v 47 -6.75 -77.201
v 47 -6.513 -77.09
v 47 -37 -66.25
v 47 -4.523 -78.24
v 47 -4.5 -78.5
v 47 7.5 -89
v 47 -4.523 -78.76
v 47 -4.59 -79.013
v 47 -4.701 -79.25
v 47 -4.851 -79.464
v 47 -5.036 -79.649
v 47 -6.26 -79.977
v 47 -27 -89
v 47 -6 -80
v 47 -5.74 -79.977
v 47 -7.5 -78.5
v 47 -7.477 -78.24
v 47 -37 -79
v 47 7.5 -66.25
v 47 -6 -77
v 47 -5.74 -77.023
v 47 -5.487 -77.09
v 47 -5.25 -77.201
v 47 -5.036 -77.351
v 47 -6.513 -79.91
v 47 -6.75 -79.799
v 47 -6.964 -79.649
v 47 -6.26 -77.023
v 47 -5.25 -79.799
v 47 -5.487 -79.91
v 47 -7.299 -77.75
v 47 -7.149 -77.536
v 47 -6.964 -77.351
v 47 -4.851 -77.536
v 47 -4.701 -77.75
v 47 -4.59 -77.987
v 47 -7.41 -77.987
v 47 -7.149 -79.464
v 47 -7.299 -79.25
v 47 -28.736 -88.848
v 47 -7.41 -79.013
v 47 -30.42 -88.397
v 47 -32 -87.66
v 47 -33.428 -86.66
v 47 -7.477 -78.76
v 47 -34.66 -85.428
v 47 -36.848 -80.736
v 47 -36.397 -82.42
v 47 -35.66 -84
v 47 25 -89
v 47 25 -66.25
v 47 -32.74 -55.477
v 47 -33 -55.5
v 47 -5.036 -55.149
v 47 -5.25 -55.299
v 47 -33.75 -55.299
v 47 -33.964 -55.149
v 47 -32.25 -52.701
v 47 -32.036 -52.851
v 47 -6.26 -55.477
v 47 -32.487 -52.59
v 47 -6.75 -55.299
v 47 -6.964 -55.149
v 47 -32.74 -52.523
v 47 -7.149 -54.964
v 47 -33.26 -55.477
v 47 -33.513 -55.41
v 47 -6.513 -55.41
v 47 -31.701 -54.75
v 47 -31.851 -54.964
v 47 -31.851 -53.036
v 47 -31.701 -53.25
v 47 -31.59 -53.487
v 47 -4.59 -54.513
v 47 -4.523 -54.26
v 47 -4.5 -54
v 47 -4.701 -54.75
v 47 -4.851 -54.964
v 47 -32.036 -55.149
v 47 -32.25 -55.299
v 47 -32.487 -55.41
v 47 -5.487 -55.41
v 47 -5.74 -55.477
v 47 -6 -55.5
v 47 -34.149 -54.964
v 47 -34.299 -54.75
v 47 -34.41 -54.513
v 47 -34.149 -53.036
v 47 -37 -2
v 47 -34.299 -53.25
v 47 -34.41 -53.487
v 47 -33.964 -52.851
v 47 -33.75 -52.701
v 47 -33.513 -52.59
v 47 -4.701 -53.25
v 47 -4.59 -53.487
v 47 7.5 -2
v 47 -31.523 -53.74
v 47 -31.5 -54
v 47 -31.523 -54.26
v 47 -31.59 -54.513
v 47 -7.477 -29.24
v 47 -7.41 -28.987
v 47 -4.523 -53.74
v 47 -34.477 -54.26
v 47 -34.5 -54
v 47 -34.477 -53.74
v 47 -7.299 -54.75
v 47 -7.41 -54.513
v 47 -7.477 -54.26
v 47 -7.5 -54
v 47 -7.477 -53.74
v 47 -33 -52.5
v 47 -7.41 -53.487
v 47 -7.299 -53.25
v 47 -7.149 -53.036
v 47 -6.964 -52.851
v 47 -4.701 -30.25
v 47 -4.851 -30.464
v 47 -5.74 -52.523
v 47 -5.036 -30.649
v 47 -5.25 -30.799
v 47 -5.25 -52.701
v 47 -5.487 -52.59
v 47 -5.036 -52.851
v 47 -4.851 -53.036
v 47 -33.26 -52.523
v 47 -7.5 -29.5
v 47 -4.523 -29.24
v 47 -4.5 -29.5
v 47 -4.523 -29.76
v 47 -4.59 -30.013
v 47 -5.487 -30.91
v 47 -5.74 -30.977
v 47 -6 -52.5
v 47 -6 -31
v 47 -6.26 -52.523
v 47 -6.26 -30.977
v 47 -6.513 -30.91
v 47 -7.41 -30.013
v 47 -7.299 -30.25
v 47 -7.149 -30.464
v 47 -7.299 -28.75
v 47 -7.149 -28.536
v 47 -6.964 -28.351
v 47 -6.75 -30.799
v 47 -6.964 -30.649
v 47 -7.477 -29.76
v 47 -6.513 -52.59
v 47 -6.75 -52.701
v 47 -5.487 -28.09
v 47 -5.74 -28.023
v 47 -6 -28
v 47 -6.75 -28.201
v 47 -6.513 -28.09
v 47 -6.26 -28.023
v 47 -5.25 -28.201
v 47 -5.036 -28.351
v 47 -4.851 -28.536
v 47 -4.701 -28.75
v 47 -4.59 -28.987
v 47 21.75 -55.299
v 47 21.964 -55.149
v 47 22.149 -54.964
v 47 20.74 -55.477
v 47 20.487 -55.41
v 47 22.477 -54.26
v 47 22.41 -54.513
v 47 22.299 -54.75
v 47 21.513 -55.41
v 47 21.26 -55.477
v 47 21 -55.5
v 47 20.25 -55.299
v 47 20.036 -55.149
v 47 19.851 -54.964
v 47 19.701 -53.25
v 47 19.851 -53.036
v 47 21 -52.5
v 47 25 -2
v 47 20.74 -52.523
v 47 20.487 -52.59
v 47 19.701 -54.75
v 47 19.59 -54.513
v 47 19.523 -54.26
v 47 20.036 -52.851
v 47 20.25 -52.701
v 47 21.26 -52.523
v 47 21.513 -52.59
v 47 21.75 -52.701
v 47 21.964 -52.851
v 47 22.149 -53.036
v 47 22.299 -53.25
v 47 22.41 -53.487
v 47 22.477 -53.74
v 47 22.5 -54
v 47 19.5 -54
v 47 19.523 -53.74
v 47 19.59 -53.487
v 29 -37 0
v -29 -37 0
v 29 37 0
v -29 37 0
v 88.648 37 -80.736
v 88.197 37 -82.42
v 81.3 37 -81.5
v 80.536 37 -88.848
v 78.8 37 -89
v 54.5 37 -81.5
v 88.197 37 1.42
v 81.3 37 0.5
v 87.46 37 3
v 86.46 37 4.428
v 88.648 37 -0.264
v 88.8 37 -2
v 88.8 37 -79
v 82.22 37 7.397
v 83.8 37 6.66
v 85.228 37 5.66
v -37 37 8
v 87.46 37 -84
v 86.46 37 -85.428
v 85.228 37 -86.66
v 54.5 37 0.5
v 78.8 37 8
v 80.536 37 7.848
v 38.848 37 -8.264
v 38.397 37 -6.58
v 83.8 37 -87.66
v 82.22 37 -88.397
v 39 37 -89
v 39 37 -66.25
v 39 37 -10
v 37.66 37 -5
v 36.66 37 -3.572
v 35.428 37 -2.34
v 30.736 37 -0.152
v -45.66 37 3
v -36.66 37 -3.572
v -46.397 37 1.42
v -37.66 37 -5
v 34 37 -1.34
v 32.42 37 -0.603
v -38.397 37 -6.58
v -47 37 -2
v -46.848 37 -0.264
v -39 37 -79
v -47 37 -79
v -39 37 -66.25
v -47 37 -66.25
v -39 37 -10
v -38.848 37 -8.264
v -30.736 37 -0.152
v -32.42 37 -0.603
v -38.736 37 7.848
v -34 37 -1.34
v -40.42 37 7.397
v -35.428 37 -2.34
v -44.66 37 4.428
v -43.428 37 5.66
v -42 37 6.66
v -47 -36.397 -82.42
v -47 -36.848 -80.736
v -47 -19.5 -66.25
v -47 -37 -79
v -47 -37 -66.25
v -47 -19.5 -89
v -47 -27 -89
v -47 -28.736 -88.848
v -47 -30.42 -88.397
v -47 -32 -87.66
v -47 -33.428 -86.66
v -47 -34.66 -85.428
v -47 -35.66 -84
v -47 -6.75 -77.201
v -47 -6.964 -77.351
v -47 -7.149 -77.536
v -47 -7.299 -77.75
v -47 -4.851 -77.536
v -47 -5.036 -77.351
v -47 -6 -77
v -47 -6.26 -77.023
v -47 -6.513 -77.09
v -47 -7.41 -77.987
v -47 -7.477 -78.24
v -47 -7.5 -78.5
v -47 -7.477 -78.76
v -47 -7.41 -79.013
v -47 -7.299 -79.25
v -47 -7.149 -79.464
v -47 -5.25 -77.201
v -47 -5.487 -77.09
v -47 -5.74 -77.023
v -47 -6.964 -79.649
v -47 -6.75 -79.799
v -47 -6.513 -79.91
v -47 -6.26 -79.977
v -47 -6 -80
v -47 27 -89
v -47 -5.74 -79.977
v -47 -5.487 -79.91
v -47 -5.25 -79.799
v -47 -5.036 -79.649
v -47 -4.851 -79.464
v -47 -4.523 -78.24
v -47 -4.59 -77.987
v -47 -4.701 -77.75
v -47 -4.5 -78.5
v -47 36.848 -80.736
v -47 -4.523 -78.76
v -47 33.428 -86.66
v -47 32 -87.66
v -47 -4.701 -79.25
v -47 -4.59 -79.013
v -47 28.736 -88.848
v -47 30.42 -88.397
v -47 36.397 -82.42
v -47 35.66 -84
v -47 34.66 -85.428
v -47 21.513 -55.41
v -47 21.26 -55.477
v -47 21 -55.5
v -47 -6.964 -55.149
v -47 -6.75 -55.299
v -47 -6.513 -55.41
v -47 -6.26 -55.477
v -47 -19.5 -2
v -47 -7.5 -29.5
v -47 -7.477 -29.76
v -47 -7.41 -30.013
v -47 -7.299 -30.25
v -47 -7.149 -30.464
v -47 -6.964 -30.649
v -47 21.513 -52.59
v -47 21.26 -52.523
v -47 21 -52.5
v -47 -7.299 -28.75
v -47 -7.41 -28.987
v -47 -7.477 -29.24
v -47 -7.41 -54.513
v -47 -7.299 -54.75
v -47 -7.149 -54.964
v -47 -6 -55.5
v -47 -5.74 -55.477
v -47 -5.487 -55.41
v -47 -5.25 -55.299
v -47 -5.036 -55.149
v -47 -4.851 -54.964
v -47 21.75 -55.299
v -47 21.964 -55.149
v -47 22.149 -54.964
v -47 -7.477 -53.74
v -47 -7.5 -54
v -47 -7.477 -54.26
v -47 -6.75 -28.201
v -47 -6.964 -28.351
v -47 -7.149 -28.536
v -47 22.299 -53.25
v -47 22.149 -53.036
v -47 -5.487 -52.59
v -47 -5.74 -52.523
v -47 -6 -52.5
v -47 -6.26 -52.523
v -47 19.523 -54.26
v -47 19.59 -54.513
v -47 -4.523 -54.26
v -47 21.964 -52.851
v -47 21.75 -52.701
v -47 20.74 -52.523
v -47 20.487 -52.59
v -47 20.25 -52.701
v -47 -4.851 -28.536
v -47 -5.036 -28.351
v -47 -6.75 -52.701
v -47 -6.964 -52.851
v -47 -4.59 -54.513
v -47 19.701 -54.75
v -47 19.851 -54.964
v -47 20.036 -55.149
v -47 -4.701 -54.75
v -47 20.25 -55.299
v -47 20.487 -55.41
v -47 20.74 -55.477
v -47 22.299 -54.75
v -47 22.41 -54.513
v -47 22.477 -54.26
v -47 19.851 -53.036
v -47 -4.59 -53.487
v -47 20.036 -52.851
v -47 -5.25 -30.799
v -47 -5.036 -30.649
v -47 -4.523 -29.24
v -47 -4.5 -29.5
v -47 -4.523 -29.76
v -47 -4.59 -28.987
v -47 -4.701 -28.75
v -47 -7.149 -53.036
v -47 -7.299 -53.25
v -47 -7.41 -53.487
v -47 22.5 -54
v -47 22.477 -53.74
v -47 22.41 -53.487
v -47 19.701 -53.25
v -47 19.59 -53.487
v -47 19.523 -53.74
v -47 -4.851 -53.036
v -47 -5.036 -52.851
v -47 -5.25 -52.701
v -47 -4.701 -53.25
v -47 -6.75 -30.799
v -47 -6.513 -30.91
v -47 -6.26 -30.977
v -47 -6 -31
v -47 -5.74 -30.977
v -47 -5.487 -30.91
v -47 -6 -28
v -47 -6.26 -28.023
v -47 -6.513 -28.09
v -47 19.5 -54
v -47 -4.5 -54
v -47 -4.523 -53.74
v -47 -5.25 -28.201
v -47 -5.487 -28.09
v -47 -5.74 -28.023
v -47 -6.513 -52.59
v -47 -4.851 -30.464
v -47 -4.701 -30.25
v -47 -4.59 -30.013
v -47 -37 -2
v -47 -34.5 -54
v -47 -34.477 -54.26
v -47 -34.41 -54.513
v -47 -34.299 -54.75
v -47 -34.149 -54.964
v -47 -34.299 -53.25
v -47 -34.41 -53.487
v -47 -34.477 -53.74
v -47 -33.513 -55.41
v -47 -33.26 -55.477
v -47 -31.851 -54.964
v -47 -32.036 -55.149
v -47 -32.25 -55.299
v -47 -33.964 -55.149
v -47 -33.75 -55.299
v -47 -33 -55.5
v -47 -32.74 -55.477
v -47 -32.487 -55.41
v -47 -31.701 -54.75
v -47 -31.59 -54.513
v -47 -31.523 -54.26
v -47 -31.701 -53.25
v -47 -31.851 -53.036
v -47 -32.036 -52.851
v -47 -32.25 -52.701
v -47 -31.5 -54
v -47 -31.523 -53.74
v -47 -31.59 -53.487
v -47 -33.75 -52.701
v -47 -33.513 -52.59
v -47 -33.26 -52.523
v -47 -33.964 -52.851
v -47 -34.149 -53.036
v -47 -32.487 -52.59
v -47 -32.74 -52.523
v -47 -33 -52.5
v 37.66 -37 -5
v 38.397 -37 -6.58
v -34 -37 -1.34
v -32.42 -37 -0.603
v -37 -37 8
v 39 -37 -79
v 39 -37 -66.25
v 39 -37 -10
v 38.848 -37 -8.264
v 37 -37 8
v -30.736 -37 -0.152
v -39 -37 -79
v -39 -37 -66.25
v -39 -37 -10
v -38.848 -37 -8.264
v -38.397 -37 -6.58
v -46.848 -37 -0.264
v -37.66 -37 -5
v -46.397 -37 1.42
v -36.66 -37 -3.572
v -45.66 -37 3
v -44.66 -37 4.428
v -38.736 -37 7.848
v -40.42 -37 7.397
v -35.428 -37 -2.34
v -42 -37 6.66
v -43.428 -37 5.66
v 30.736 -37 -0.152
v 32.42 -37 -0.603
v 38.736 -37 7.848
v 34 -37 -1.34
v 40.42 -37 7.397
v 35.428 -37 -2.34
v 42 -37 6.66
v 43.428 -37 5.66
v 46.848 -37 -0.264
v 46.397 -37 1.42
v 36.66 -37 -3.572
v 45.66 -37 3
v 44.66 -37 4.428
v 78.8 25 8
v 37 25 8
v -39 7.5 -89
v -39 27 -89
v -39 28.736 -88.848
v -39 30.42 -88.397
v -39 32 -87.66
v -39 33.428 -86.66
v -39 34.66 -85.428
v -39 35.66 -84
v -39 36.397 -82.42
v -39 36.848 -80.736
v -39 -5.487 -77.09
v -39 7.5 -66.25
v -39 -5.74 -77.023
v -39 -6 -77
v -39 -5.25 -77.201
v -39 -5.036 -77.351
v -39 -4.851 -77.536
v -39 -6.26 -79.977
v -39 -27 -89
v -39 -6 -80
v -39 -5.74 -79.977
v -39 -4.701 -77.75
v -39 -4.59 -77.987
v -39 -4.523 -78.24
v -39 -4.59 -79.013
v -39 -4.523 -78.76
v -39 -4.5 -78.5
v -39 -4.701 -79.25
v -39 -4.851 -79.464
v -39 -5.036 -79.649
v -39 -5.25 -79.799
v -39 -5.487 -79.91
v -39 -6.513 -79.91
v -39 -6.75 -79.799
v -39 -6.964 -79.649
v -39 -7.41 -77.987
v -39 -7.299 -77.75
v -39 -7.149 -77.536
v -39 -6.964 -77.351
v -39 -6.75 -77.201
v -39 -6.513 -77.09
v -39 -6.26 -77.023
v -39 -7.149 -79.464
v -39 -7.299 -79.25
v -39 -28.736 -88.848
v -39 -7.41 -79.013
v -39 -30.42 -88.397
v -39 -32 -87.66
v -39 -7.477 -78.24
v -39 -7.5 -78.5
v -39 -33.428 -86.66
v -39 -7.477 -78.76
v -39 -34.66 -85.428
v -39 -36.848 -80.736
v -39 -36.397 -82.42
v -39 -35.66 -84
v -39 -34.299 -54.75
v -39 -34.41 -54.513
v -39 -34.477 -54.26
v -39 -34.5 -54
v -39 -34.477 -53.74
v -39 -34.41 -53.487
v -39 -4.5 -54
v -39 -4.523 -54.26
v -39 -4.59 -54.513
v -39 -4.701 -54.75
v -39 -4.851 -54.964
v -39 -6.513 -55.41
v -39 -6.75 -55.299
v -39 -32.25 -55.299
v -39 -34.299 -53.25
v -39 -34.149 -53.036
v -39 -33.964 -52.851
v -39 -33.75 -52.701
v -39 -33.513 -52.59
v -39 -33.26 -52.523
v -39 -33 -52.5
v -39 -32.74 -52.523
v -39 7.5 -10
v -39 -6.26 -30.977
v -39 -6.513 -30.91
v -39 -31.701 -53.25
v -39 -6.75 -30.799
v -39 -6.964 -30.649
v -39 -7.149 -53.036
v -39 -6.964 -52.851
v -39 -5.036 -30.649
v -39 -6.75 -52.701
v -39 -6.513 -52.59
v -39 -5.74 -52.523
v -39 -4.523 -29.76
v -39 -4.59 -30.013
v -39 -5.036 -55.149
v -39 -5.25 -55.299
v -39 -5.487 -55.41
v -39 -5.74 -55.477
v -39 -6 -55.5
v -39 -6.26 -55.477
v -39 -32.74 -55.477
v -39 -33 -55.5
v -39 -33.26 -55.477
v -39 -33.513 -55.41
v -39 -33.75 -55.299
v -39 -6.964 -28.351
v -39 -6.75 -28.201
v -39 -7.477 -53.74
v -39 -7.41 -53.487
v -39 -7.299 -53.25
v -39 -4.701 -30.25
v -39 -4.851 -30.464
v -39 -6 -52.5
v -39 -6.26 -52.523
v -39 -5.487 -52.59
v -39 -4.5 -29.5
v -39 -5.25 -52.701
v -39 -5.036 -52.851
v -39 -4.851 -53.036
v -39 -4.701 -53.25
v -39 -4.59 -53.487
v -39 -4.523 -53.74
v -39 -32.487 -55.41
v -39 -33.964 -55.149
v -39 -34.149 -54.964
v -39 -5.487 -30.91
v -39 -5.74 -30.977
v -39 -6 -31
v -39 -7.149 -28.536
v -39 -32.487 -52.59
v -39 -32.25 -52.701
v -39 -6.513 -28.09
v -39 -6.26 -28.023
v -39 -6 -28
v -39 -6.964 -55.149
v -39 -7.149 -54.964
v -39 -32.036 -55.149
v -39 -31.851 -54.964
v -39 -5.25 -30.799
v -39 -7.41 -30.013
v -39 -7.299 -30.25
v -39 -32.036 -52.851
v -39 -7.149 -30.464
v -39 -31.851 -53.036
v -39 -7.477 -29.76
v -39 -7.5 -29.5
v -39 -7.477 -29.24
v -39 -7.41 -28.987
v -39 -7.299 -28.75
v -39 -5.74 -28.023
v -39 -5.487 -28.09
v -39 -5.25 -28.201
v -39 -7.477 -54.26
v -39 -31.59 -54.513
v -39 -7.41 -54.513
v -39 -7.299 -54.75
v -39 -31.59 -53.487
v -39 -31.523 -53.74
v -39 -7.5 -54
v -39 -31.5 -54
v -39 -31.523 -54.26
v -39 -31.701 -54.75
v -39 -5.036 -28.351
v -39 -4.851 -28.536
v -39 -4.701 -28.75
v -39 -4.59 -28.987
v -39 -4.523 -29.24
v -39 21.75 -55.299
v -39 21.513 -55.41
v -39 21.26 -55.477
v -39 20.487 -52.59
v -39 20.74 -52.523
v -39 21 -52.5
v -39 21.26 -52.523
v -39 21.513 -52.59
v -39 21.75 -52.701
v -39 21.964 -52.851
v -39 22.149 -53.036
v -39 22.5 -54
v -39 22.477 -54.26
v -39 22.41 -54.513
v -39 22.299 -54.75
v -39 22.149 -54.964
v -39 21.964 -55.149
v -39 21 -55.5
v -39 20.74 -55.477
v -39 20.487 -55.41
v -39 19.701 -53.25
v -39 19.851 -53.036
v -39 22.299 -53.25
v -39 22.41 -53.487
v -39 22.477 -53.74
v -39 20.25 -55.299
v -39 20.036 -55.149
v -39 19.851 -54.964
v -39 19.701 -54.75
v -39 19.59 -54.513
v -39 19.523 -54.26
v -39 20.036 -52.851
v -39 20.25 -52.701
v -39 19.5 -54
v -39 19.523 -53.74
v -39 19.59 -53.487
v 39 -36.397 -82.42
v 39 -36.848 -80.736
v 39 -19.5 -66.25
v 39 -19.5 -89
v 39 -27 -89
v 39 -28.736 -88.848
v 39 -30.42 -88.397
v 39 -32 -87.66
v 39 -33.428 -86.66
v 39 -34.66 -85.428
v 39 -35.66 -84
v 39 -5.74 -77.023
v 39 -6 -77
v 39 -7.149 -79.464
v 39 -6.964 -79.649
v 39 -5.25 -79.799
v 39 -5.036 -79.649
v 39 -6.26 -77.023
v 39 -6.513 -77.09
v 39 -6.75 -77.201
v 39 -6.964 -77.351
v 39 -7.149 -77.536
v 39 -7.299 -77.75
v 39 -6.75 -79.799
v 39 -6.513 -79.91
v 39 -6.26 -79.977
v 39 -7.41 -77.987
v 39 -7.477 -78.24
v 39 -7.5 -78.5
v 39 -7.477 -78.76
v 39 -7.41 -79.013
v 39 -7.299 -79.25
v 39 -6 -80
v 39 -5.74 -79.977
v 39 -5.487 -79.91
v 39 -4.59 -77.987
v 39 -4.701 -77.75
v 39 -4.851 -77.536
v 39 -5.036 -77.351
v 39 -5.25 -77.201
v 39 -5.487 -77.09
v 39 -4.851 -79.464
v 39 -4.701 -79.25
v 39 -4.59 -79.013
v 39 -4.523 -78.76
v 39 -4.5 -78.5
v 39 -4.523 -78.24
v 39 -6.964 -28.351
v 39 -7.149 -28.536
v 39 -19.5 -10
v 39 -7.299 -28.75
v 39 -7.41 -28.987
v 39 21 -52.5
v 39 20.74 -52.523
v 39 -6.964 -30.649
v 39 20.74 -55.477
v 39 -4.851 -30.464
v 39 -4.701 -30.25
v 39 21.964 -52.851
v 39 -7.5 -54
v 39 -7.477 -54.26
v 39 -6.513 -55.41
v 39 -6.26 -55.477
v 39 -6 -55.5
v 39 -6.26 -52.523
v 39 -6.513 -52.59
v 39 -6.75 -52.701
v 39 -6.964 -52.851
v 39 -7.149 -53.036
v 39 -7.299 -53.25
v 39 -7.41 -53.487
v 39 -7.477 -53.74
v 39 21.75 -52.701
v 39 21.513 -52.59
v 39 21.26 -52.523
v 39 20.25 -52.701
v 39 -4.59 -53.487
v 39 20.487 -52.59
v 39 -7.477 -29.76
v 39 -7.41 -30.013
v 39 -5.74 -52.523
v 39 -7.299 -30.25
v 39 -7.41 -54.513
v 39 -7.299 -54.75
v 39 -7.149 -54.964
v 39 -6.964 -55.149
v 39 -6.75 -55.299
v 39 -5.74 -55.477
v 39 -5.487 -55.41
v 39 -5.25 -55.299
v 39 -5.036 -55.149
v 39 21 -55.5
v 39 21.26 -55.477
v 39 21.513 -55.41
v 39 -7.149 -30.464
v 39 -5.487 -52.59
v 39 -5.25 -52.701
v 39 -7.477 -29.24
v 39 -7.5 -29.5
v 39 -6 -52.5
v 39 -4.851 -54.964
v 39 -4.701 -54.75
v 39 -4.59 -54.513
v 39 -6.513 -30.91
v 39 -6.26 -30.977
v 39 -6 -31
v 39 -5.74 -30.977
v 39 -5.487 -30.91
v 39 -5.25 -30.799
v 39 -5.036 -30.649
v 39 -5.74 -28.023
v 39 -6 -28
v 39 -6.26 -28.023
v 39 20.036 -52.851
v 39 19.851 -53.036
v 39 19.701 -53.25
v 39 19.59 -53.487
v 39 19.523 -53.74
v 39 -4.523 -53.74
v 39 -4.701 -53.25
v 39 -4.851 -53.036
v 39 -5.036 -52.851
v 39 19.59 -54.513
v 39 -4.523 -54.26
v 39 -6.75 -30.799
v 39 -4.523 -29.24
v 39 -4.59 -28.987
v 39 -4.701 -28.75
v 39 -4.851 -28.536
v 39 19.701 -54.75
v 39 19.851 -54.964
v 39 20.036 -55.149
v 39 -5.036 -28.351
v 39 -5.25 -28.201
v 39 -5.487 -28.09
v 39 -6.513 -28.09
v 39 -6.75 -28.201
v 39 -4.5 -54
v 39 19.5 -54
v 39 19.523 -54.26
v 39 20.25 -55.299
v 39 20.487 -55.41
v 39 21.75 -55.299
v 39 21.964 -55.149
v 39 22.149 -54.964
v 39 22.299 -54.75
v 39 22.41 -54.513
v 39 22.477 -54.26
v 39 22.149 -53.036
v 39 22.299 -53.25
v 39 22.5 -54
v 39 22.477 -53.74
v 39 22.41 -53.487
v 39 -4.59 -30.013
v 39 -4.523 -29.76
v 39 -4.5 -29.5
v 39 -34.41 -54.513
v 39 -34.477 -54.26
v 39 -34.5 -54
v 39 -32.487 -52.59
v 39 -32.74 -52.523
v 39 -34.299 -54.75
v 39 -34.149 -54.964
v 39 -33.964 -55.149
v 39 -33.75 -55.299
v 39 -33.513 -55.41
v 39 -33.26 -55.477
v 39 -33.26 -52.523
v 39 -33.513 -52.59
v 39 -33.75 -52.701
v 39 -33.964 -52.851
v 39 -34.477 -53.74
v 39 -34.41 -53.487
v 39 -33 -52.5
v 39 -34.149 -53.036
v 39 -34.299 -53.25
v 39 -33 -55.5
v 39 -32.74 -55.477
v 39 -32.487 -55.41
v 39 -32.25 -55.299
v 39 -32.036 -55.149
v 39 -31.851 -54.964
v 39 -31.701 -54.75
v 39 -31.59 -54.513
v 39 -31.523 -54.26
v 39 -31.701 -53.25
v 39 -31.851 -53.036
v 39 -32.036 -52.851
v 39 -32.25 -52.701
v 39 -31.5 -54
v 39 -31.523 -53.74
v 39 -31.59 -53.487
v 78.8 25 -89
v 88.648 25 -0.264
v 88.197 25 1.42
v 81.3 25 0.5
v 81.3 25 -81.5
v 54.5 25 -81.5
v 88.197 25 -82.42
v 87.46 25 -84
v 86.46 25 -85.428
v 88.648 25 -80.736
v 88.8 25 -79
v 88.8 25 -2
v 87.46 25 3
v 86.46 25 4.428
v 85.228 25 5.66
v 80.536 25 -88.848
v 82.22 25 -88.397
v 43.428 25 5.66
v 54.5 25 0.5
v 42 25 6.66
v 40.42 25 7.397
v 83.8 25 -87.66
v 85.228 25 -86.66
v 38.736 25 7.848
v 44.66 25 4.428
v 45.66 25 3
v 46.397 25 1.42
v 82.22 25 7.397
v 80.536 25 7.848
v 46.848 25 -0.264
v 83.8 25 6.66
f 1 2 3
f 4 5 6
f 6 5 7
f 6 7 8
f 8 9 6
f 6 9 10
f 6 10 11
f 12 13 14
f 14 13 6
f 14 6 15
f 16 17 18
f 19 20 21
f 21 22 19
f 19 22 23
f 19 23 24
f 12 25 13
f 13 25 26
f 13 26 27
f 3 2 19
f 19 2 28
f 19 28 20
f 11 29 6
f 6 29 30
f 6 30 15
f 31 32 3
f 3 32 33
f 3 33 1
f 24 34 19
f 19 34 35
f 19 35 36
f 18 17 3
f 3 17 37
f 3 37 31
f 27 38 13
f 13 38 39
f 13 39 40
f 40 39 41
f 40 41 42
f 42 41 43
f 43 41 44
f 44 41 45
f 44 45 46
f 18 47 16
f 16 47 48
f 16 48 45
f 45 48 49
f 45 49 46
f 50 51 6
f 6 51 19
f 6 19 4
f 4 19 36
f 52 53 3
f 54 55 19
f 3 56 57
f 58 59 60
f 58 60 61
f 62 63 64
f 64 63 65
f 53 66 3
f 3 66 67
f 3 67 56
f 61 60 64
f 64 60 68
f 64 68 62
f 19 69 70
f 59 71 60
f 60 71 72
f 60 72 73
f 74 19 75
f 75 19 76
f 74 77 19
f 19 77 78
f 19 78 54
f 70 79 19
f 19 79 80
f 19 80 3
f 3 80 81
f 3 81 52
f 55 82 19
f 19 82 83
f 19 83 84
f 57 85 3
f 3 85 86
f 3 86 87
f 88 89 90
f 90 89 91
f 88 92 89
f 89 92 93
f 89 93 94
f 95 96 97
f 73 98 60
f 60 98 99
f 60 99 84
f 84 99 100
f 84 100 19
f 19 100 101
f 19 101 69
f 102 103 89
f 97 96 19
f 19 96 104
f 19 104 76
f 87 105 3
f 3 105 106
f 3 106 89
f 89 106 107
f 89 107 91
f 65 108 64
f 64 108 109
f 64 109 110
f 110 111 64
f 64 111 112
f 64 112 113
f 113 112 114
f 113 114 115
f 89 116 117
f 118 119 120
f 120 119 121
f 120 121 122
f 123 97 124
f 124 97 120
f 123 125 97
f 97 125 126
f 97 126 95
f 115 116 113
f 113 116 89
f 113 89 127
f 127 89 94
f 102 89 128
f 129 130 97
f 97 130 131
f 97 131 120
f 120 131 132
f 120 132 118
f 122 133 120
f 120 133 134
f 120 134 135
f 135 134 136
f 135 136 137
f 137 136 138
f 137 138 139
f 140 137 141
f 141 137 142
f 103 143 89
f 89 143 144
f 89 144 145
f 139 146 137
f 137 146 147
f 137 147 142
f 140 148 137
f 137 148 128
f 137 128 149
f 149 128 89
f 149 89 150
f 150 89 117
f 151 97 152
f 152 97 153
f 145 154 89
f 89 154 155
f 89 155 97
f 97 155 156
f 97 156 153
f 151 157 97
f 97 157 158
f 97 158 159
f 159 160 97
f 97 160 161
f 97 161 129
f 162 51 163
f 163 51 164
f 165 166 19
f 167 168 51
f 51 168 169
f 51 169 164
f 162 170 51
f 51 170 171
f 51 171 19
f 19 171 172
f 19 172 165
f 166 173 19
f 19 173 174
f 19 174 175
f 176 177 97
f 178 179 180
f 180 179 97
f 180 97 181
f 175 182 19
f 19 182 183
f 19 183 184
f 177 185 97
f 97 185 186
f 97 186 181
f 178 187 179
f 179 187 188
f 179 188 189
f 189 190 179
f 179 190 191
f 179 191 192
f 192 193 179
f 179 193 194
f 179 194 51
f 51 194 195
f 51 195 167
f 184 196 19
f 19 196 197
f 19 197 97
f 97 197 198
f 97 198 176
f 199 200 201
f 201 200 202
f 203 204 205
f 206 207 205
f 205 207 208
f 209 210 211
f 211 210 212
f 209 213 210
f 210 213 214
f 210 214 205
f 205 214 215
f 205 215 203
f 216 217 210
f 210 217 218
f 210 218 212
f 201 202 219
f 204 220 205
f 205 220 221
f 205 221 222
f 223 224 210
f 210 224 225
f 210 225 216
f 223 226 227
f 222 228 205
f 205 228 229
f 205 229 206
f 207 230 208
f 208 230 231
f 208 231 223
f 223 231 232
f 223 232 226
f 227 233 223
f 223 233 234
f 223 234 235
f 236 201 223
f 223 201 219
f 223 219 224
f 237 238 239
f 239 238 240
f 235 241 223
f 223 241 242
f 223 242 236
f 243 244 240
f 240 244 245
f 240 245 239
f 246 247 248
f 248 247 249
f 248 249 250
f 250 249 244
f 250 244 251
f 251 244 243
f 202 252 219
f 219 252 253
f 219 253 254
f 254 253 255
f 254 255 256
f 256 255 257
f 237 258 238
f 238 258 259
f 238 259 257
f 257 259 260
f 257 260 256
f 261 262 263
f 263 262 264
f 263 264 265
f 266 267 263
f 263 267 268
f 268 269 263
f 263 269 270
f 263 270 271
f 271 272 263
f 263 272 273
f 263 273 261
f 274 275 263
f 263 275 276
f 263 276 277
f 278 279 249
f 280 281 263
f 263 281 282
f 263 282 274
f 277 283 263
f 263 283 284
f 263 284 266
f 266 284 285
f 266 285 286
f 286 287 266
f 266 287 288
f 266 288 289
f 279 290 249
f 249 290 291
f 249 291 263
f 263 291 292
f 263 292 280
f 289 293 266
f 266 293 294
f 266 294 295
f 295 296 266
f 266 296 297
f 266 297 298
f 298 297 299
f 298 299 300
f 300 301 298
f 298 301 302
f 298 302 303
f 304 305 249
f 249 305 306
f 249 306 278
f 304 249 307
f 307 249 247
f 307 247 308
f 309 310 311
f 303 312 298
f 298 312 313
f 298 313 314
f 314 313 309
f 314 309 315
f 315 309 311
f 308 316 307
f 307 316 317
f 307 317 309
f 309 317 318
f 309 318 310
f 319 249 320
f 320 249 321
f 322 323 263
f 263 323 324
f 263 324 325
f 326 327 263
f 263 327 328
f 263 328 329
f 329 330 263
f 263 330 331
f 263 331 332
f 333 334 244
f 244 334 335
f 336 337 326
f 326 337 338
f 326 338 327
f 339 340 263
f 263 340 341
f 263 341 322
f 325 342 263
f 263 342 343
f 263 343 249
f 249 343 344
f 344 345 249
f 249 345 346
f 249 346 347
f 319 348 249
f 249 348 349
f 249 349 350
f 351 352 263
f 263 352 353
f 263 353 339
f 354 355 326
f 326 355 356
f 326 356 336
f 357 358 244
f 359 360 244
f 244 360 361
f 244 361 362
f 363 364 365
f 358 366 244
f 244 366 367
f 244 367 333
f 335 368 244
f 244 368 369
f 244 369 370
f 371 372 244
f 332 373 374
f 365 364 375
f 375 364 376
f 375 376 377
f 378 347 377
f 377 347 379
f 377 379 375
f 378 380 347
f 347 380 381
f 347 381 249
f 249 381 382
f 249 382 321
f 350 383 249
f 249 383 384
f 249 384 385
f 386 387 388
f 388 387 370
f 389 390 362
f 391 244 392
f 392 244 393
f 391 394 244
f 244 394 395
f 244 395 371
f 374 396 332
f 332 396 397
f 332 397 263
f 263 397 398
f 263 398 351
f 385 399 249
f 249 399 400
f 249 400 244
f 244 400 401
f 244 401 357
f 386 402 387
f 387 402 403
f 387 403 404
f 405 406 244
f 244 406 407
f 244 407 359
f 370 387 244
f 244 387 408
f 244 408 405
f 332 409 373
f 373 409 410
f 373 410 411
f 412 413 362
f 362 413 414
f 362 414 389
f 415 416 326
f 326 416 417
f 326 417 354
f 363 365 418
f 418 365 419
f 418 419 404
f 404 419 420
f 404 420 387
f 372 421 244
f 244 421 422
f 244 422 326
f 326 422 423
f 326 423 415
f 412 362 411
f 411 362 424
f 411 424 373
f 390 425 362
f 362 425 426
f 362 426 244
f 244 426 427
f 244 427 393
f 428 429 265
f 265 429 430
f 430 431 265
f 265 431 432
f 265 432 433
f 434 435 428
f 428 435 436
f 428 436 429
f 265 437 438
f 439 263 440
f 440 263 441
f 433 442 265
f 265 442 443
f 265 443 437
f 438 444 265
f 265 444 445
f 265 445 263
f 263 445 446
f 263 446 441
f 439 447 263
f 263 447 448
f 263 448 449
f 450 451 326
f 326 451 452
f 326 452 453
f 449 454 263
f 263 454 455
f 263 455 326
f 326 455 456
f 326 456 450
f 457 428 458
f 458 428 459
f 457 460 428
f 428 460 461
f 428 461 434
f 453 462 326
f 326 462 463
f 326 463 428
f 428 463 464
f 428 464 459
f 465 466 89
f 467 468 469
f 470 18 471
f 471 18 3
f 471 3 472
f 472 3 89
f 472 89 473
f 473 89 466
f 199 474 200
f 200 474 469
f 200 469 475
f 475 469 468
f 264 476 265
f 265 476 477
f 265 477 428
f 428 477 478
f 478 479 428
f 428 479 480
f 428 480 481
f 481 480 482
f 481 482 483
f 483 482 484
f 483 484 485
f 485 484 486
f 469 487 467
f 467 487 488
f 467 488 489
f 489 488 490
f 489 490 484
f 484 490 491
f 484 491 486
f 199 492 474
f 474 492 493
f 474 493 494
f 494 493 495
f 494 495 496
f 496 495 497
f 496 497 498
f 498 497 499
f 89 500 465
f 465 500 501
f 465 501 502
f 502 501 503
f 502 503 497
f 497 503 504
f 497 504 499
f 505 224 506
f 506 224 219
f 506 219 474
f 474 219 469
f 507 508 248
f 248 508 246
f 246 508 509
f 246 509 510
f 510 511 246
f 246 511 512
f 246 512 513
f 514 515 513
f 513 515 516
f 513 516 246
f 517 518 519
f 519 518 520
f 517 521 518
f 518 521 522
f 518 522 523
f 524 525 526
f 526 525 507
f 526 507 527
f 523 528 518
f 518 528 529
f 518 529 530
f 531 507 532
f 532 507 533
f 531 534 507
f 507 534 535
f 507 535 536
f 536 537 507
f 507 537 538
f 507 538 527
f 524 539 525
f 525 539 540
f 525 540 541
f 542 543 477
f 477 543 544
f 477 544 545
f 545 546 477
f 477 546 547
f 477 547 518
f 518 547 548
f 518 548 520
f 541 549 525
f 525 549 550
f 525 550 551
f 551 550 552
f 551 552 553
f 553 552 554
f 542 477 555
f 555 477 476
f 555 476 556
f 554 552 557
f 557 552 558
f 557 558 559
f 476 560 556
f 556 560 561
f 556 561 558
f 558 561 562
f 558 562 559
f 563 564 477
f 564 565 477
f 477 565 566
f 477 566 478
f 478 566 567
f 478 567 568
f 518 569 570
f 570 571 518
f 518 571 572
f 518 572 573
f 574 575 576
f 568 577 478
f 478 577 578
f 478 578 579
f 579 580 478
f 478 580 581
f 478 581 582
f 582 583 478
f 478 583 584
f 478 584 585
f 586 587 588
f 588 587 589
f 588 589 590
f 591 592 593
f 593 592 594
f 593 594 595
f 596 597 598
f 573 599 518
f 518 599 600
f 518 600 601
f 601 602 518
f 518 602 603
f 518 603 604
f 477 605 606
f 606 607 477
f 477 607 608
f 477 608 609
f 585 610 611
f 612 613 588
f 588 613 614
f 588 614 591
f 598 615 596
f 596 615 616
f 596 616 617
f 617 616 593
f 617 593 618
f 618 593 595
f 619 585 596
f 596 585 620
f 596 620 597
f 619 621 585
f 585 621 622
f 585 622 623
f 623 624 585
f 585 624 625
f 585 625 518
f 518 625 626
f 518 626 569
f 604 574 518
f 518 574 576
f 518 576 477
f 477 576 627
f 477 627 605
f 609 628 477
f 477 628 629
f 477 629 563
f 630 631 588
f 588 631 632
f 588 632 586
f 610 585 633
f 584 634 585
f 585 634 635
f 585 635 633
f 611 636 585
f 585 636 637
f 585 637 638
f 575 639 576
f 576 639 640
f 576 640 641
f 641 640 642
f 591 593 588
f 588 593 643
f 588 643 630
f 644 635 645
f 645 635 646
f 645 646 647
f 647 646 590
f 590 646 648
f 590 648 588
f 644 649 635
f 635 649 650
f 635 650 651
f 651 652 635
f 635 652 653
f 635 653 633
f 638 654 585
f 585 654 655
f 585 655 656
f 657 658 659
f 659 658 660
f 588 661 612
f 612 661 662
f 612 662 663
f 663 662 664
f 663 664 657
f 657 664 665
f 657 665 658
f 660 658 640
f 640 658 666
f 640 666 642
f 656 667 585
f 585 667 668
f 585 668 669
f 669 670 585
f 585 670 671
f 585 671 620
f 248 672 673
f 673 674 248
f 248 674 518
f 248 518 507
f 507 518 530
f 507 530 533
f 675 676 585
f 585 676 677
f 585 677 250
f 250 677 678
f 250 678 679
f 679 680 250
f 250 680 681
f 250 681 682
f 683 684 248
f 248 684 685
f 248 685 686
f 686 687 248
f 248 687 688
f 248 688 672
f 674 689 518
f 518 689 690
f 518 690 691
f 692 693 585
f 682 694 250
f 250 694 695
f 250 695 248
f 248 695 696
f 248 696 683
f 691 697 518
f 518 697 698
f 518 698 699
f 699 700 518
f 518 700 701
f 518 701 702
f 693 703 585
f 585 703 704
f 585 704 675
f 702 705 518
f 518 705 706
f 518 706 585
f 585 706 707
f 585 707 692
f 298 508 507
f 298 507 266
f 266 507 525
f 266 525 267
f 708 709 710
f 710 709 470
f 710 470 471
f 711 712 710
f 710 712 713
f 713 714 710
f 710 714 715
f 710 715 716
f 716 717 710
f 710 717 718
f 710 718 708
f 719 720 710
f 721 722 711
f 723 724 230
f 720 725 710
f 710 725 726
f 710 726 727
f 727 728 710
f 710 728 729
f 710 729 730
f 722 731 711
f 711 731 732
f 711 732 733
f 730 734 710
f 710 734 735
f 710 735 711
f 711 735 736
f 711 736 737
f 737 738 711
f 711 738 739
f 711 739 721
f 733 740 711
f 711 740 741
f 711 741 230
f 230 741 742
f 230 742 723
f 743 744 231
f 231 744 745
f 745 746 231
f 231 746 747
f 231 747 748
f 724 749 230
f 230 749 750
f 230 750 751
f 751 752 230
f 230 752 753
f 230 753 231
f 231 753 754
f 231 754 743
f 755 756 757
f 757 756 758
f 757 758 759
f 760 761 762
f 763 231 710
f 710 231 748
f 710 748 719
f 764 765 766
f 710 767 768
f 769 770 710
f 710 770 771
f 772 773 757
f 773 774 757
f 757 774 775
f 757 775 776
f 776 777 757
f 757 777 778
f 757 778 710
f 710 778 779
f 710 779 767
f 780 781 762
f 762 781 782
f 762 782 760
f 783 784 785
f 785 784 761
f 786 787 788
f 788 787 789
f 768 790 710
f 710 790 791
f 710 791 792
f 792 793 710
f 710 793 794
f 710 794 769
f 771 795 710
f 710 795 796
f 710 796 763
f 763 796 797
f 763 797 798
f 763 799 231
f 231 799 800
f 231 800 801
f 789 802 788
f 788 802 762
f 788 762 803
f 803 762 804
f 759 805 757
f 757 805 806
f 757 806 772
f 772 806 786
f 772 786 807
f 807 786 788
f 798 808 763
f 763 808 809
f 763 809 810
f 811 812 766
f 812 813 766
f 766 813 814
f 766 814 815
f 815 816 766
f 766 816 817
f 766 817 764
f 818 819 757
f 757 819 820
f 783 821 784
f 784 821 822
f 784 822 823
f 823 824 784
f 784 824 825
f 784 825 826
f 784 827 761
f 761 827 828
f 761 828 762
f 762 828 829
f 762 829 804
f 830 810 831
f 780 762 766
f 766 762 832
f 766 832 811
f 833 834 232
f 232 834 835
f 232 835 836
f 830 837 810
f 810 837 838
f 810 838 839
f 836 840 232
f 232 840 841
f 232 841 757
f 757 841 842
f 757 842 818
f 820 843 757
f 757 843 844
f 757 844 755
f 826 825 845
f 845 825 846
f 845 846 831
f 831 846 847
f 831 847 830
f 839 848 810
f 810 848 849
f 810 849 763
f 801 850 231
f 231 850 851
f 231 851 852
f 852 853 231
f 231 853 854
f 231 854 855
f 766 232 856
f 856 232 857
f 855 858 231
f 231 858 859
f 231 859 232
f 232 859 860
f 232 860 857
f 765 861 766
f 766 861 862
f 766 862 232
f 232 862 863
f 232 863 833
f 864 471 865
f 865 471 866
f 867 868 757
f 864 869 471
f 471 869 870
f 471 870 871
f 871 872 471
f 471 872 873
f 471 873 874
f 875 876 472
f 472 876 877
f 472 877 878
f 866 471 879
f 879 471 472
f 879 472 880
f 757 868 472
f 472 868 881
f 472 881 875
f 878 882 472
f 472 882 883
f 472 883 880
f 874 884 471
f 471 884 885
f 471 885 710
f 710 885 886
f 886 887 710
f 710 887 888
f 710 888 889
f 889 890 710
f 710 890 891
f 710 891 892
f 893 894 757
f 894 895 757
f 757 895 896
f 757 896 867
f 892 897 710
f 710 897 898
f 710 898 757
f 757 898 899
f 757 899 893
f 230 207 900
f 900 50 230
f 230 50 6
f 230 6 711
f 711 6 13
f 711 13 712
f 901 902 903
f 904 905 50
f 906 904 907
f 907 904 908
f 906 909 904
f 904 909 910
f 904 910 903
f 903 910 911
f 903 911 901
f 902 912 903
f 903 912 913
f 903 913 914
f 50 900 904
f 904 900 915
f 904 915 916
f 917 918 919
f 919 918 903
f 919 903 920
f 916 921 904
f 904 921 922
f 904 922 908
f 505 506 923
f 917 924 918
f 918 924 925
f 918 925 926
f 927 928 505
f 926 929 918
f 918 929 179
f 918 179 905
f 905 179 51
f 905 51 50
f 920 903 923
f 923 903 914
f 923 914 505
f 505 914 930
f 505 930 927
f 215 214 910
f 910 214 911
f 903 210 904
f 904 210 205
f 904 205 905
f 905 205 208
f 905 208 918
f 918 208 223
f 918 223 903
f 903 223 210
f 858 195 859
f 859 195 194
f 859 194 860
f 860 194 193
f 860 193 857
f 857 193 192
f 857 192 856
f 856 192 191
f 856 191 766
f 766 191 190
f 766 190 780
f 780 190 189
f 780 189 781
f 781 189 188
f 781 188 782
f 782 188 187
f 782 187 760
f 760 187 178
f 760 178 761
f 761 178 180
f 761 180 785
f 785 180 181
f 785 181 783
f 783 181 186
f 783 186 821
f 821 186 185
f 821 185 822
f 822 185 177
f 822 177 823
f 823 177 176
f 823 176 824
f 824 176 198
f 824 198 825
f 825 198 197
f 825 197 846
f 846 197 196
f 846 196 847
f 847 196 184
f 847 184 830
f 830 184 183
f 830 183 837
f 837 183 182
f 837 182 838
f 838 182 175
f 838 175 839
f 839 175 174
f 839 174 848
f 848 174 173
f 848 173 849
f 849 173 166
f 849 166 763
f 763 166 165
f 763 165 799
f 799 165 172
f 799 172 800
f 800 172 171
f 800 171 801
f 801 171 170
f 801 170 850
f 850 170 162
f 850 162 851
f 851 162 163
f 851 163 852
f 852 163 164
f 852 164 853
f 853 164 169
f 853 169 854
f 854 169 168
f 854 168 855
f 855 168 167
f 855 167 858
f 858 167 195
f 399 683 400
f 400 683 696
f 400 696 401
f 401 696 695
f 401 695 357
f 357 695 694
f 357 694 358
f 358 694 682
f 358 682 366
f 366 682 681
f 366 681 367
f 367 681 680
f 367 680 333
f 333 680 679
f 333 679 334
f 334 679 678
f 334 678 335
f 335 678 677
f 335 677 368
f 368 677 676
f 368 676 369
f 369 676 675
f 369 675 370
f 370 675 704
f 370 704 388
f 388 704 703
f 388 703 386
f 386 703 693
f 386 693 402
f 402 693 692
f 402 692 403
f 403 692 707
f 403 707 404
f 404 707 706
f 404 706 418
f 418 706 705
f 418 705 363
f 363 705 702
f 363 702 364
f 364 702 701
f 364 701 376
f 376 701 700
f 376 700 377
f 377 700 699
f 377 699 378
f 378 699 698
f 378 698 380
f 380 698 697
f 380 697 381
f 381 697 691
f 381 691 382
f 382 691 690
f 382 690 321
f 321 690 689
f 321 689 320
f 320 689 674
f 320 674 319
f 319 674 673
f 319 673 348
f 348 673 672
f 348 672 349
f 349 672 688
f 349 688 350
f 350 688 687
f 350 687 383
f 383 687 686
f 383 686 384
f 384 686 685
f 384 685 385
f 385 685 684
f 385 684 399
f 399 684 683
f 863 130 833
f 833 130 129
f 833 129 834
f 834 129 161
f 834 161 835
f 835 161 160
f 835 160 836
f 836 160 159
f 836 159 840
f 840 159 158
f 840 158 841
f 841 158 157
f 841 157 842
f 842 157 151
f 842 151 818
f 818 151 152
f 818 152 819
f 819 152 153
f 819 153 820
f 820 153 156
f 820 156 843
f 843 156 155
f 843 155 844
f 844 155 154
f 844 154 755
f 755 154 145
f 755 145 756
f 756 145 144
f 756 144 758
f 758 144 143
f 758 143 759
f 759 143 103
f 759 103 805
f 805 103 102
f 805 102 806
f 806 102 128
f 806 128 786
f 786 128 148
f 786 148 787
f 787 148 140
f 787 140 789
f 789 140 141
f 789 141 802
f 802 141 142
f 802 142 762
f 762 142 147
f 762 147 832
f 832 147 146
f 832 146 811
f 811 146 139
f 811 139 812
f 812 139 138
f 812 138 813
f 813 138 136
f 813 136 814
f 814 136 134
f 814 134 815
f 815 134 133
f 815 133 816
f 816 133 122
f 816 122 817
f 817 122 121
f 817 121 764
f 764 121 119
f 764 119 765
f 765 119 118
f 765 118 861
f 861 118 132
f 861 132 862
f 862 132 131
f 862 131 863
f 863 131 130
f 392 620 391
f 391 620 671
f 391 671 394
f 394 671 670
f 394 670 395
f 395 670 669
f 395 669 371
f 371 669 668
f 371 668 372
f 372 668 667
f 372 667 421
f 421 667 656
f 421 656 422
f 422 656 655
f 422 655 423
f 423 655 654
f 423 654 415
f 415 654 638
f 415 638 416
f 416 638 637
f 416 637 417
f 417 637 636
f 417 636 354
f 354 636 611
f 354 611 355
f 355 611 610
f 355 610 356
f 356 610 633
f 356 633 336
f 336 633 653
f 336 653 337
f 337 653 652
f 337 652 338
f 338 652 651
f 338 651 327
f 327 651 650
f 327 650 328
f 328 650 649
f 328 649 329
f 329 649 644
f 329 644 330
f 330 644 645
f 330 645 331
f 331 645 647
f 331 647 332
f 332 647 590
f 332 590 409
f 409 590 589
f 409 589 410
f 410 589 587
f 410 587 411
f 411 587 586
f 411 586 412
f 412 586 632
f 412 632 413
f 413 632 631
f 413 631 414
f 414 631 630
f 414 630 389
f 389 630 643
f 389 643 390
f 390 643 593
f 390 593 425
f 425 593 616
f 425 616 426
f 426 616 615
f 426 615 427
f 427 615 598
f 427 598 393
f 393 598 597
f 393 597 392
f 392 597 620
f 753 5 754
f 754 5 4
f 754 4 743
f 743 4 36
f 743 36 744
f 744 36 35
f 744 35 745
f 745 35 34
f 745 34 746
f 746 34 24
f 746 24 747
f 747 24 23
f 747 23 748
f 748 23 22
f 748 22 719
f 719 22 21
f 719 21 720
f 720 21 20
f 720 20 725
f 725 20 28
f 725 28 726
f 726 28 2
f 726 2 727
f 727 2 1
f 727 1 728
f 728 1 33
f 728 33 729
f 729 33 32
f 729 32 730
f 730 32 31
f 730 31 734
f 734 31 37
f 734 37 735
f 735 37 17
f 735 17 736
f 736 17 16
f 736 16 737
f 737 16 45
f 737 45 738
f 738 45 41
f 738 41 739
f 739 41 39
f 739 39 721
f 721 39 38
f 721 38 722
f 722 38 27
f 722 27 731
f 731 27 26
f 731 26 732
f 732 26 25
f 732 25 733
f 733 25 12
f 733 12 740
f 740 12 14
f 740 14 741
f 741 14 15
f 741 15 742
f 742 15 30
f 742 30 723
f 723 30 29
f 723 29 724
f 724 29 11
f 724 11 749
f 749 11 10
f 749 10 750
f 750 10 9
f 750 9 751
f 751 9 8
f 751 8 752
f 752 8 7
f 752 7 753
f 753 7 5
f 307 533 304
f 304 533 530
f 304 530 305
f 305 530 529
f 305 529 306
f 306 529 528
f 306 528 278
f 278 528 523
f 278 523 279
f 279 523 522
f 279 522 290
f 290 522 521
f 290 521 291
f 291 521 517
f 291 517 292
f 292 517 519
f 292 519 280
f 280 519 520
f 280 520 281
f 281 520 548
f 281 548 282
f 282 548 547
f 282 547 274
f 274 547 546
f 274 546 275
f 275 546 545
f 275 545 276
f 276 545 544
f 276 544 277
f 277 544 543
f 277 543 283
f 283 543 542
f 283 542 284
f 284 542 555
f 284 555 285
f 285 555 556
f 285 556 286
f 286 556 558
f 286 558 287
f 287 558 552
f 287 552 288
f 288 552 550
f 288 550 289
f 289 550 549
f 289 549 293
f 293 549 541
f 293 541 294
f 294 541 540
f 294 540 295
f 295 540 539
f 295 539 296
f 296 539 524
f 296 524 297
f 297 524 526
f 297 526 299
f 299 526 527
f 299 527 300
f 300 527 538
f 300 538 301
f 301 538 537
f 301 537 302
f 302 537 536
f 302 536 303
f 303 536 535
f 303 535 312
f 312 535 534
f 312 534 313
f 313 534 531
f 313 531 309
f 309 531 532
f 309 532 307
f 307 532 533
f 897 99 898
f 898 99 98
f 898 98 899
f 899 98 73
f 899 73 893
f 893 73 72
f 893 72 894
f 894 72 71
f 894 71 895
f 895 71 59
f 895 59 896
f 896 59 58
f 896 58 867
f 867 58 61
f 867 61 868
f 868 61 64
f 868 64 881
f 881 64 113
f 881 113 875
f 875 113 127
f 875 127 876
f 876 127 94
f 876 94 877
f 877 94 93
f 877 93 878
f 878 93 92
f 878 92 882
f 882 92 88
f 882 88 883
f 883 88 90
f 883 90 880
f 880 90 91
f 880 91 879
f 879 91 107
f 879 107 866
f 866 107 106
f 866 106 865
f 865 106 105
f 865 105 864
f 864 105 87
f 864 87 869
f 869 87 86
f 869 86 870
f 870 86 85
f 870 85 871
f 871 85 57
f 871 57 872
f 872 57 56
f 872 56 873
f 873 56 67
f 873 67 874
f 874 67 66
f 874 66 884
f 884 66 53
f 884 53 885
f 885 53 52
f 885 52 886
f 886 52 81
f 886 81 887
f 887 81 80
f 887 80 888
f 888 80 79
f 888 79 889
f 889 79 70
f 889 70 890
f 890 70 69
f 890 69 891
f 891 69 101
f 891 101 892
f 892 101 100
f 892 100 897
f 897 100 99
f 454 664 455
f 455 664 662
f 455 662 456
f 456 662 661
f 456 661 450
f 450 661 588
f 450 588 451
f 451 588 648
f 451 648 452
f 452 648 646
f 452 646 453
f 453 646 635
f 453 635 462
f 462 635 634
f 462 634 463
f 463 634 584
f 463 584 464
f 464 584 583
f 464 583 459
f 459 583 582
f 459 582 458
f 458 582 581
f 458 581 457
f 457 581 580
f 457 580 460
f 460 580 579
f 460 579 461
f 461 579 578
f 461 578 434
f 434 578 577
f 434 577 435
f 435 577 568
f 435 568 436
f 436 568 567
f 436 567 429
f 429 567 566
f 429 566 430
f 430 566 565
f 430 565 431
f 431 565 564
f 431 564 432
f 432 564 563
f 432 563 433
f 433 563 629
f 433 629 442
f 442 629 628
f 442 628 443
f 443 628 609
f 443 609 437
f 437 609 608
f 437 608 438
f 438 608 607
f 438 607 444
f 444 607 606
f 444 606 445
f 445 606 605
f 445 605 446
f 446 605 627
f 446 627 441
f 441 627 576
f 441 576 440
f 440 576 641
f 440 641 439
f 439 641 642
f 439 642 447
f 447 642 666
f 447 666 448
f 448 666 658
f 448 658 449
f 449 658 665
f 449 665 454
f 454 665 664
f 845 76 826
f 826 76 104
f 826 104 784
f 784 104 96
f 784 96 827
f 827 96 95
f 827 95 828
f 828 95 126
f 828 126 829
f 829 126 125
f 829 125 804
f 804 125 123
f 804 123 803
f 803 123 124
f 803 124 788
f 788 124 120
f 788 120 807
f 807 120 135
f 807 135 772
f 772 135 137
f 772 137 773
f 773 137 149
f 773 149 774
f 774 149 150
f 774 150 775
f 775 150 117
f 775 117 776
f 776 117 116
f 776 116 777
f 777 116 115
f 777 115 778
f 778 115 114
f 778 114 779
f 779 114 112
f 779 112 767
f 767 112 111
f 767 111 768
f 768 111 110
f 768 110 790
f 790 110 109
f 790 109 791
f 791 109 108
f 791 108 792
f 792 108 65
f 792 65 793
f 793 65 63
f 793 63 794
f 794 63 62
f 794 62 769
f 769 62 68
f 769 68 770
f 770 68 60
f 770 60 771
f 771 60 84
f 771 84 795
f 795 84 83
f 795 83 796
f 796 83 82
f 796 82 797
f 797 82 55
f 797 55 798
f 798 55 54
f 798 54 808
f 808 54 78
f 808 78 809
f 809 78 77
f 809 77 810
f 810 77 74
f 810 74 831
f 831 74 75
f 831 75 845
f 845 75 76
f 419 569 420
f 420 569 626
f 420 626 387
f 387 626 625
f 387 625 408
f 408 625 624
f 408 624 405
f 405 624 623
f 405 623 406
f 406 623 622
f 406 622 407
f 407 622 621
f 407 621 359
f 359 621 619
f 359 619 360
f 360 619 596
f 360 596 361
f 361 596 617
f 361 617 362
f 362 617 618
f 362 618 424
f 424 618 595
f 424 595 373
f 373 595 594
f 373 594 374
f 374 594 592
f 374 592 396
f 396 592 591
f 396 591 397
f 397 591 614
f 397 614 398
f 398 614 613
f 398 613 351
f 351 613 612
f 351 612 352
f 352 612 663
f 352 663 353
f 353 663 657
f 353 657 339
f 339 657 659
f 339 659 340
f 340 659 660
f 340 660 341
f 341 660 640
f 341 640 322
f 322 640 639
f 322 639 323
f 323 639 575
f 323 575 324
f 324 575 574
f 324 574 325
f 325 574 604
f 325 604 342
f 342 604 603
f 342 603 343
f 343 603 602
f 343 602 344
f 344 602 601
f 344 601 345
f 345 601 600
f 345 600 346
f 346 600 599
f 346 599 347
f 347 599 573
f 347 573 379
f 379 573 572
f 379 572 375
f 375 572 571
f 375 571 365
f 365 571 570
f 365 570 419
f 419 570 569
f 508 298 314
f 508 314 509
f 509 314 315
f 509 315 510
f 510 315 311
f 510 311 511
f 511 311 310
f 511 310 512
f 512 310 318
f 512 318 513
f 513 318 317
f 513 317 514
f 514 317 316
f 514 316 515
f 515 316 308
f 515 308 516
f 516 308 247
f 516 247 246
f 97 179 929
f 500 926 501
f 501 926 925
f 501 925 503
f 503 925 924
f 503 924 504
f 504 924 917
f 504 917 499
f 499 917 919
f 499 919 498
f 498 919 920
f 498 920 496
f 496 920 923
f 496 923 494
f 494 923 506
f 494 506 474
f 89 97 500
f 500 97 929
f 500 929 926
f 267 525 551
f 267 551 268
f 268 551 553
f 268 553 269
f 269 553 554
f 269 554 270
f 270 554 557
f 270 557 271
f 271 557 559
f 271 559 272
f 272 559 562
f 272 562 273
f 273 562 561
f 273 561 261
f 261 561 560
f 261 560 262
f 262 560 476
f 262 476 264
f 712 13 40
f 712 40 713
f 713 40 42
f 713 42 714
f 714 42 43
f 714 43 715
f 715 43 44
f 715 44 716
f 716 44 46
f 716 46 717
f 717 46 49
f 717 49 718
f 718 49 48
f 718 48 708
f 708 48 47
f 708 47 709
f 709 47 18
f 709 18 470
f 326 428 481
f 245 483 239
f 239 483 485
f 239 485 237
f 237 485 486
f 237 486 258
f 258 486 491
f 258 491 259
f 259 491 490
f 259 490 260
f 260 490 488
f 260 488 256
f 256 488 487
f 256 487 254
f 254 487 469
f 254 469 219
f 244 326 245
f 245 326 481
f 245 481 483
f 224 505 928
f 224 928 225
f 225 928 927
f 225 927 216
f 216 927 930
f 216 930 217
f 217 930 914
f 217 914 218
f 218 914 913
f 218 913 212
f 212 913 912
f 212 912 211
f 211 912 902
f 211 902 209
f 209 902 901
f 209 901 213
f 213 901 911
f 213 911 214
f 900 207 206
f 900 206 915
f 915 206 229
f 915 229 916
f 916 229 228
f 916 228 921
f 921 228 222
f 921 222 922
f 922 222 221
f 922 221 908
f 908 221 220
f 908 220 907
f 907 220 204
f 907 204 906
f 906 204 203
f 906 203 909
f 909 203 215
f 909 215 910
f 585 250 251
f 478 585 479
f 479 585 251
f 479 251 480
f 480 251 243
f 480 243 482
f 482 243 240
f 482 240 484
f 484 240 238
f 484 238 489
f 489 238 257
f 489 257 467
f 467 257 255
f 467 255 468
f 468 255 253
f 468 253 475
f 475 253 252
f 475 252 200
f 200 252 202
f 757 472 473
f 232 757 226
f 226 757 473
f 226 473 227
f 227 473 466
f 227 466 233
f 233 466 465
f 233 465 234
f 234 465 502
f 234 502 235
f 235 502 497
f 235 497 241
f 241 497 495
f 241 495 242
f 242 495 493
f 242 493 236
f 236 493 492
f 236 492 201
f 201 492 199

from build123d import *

# Parameters (mm, degrees)
SKETCH1_W           = 94
SKETCH1_H           = 74
BOSS_EXTRUDE1_DEPTH = 8
SKETCH3_W           = 8
SKETCH3_H           = 74
BOSS_EXTRUDE2_DEPTH = 89
SKETCH4_W           = 8
SKETCH4_H           = 74
BOSS_EXTRUDE3_DEPTH = 89
SKETCH7_W           = 97
SKETCH7_H           = 12
BOSS_EXTRUDE6_DEPTH = 41.8
SKETCH13_W          = 26.8
SKETCH13_H          = 82
CUT_EXTRUDE3_DEPTH  = 15
SKETCH19_R          = 1.5
CUT_EXTRUDE4_DEPTH  = 100
FILLET1_R           = 10
FILLET2_R           = 10
FILLET3_R           = 10
FILLET4_R           = 10
FILLET5_R           = 10
FILLET6_R           = 10
FILLET7_R           = 10
FILLET8_R           = 10


with BuildPart() as part:
    # Sketch1 → Boss-Extrude1 (new body)
    with BuildSketch(Plane.XY):
        Rectangle(SKETCH1_W, SKETCH1_H)
    extrude(amount=BOSS_EXTRUDE1_DEPTH)

    # Sketch3 → Boss-Extrude2 (add)
    with BuildSketch(Plane(origin=(0, 0, 0), x_dir=(-1, 0, 0), z_dir=(0, 0, -1))):
        with Locations((43, 0)):
            Rectangle(SKETCH3_W, SKETCH3_H)
    extrude(amount=BOSS_EXTRUDE2_DEPTH)

    # Sketch4 → Boss-Extrude3 (add)
    with BuildSketch(Plane(origin=(0, 0, 0), x_dir=(-1, 0, 0), z_dir=(0, 0, -1))):
        with Locations((-43, 0)):
            Rectangle(SKETCH4_W, SKETCH4_H)
    extrude(amount=BOSS_EXTRUDE3_DEPTH)

    # Sketch7 → Boss-Extrude6 (add)
    with BuildSketch(Plane(origin=(47, 0, 0), x_dir=(0, 0, -1), z_dir=(1, 0, 0))):
        with Locations((40.5, 31)):
            Rectangle(SKETCH7_W, SKETCH7_H)
    extrude(amount=BOSS_EXTRUDE6_DEPTH)

    # Sketch13 → Cut-Extrude3 (cut)
    with BuildSketch(Plane.XZ.offset(-25)):
        with Locations((67.9, -40.5)):
            Rectangle(SKETCH13_W, SKETCH13_H)
    extrude(amount=-CUT_EXTRUDE3_DEPTH, mode=Mode.SUBTRACT)

    # Sketch19 → Cut-Extrude4 (cut)
    with BuildSketch(Plane(origin=(47, 0, 0), x_dir=(0, 0, -1), z_dir=(1, 0, 0))):
        with Locations(Location((54, 21, 0), (0, 0, 90))):
            Circle(SKETCH19_R)
        with Locations(Location((29.5, -6, 0), (0, 0, 90))):
            Circle(SKETCH19_R)
        with Locations(Location((78.5, -6, 0), (0, 0, 90))):
            Circle(SKETCH19_R)
        with Locations(Location((54, -33, 0), (0, 0, 90))):
            Circle(SKETCH19_R)
        with Locations(Location((54, -6, 0), (0, 0, 90))):
            Circle(SKETCH19_R)
    extrude(amount=-CUT_EXTRUDE4_DEPTH, mode=Mode.SUBTRACT)

    # Fillet1
    fillet1_edges = [part.edges().sort_by_distance(p)[0] for p in [
        (-43, 37, -89),
        (47, -6, 8),
    ]]
    fillet(fillet1_edges, radius=FILLET1_R)

    # Fillet2
    fillet2_edges = [part.edges().sort_by_distance(p)[0] for p in [
        (-43, -37, -89),
    ]]
    fillet(fillet2_edges, radius=FILLET2_R)

    # Fillet3
    fillet3_edges = [part.edges().sort_by_distance(p)[0] for p in [
        (43, -37, -89),
    ]]
    fillet(fillet3_edges, radius=FILLET3_R)

    # Fillet4
    fillet4_edges = [part.edges().sort_by_distance(p)[0] for p in [
        (-47, 0, 8),
    ]]
    fillet(fillet4_edges, radius=FILLET4_R)

    # Fillet5
    fillet5_edges = [part.edges().sort_by_distance(p)[0] for p in [
        (88.8, 31, 8),
    ]]
    fillet(fillet5_edges, radius=FILLET5_R)

    # Fillet6
    fillet6_edges = [part.edges().sort_by_distance(p)[0] for p in [
        (88.8, 31, -89),
    ]]
    fillet(fillet6_edges, radius=FILLET6_R)

    # Fillet7
    fillet7_edges = [part.edges().sort_by_distance(p)[0] for p in [
        (-39, 0, 0),
    ]]
    fillet(fillet7_edges, radius=FILLET7_R)

    # Fillet8
    fillet8_edges = [part.edges().sort_by_distance(p)[0] for p in [
        (39, 0, 0),
    ]]
    fillet(fillet8_edges, radius=FILLET8_R)


solid = part.part
